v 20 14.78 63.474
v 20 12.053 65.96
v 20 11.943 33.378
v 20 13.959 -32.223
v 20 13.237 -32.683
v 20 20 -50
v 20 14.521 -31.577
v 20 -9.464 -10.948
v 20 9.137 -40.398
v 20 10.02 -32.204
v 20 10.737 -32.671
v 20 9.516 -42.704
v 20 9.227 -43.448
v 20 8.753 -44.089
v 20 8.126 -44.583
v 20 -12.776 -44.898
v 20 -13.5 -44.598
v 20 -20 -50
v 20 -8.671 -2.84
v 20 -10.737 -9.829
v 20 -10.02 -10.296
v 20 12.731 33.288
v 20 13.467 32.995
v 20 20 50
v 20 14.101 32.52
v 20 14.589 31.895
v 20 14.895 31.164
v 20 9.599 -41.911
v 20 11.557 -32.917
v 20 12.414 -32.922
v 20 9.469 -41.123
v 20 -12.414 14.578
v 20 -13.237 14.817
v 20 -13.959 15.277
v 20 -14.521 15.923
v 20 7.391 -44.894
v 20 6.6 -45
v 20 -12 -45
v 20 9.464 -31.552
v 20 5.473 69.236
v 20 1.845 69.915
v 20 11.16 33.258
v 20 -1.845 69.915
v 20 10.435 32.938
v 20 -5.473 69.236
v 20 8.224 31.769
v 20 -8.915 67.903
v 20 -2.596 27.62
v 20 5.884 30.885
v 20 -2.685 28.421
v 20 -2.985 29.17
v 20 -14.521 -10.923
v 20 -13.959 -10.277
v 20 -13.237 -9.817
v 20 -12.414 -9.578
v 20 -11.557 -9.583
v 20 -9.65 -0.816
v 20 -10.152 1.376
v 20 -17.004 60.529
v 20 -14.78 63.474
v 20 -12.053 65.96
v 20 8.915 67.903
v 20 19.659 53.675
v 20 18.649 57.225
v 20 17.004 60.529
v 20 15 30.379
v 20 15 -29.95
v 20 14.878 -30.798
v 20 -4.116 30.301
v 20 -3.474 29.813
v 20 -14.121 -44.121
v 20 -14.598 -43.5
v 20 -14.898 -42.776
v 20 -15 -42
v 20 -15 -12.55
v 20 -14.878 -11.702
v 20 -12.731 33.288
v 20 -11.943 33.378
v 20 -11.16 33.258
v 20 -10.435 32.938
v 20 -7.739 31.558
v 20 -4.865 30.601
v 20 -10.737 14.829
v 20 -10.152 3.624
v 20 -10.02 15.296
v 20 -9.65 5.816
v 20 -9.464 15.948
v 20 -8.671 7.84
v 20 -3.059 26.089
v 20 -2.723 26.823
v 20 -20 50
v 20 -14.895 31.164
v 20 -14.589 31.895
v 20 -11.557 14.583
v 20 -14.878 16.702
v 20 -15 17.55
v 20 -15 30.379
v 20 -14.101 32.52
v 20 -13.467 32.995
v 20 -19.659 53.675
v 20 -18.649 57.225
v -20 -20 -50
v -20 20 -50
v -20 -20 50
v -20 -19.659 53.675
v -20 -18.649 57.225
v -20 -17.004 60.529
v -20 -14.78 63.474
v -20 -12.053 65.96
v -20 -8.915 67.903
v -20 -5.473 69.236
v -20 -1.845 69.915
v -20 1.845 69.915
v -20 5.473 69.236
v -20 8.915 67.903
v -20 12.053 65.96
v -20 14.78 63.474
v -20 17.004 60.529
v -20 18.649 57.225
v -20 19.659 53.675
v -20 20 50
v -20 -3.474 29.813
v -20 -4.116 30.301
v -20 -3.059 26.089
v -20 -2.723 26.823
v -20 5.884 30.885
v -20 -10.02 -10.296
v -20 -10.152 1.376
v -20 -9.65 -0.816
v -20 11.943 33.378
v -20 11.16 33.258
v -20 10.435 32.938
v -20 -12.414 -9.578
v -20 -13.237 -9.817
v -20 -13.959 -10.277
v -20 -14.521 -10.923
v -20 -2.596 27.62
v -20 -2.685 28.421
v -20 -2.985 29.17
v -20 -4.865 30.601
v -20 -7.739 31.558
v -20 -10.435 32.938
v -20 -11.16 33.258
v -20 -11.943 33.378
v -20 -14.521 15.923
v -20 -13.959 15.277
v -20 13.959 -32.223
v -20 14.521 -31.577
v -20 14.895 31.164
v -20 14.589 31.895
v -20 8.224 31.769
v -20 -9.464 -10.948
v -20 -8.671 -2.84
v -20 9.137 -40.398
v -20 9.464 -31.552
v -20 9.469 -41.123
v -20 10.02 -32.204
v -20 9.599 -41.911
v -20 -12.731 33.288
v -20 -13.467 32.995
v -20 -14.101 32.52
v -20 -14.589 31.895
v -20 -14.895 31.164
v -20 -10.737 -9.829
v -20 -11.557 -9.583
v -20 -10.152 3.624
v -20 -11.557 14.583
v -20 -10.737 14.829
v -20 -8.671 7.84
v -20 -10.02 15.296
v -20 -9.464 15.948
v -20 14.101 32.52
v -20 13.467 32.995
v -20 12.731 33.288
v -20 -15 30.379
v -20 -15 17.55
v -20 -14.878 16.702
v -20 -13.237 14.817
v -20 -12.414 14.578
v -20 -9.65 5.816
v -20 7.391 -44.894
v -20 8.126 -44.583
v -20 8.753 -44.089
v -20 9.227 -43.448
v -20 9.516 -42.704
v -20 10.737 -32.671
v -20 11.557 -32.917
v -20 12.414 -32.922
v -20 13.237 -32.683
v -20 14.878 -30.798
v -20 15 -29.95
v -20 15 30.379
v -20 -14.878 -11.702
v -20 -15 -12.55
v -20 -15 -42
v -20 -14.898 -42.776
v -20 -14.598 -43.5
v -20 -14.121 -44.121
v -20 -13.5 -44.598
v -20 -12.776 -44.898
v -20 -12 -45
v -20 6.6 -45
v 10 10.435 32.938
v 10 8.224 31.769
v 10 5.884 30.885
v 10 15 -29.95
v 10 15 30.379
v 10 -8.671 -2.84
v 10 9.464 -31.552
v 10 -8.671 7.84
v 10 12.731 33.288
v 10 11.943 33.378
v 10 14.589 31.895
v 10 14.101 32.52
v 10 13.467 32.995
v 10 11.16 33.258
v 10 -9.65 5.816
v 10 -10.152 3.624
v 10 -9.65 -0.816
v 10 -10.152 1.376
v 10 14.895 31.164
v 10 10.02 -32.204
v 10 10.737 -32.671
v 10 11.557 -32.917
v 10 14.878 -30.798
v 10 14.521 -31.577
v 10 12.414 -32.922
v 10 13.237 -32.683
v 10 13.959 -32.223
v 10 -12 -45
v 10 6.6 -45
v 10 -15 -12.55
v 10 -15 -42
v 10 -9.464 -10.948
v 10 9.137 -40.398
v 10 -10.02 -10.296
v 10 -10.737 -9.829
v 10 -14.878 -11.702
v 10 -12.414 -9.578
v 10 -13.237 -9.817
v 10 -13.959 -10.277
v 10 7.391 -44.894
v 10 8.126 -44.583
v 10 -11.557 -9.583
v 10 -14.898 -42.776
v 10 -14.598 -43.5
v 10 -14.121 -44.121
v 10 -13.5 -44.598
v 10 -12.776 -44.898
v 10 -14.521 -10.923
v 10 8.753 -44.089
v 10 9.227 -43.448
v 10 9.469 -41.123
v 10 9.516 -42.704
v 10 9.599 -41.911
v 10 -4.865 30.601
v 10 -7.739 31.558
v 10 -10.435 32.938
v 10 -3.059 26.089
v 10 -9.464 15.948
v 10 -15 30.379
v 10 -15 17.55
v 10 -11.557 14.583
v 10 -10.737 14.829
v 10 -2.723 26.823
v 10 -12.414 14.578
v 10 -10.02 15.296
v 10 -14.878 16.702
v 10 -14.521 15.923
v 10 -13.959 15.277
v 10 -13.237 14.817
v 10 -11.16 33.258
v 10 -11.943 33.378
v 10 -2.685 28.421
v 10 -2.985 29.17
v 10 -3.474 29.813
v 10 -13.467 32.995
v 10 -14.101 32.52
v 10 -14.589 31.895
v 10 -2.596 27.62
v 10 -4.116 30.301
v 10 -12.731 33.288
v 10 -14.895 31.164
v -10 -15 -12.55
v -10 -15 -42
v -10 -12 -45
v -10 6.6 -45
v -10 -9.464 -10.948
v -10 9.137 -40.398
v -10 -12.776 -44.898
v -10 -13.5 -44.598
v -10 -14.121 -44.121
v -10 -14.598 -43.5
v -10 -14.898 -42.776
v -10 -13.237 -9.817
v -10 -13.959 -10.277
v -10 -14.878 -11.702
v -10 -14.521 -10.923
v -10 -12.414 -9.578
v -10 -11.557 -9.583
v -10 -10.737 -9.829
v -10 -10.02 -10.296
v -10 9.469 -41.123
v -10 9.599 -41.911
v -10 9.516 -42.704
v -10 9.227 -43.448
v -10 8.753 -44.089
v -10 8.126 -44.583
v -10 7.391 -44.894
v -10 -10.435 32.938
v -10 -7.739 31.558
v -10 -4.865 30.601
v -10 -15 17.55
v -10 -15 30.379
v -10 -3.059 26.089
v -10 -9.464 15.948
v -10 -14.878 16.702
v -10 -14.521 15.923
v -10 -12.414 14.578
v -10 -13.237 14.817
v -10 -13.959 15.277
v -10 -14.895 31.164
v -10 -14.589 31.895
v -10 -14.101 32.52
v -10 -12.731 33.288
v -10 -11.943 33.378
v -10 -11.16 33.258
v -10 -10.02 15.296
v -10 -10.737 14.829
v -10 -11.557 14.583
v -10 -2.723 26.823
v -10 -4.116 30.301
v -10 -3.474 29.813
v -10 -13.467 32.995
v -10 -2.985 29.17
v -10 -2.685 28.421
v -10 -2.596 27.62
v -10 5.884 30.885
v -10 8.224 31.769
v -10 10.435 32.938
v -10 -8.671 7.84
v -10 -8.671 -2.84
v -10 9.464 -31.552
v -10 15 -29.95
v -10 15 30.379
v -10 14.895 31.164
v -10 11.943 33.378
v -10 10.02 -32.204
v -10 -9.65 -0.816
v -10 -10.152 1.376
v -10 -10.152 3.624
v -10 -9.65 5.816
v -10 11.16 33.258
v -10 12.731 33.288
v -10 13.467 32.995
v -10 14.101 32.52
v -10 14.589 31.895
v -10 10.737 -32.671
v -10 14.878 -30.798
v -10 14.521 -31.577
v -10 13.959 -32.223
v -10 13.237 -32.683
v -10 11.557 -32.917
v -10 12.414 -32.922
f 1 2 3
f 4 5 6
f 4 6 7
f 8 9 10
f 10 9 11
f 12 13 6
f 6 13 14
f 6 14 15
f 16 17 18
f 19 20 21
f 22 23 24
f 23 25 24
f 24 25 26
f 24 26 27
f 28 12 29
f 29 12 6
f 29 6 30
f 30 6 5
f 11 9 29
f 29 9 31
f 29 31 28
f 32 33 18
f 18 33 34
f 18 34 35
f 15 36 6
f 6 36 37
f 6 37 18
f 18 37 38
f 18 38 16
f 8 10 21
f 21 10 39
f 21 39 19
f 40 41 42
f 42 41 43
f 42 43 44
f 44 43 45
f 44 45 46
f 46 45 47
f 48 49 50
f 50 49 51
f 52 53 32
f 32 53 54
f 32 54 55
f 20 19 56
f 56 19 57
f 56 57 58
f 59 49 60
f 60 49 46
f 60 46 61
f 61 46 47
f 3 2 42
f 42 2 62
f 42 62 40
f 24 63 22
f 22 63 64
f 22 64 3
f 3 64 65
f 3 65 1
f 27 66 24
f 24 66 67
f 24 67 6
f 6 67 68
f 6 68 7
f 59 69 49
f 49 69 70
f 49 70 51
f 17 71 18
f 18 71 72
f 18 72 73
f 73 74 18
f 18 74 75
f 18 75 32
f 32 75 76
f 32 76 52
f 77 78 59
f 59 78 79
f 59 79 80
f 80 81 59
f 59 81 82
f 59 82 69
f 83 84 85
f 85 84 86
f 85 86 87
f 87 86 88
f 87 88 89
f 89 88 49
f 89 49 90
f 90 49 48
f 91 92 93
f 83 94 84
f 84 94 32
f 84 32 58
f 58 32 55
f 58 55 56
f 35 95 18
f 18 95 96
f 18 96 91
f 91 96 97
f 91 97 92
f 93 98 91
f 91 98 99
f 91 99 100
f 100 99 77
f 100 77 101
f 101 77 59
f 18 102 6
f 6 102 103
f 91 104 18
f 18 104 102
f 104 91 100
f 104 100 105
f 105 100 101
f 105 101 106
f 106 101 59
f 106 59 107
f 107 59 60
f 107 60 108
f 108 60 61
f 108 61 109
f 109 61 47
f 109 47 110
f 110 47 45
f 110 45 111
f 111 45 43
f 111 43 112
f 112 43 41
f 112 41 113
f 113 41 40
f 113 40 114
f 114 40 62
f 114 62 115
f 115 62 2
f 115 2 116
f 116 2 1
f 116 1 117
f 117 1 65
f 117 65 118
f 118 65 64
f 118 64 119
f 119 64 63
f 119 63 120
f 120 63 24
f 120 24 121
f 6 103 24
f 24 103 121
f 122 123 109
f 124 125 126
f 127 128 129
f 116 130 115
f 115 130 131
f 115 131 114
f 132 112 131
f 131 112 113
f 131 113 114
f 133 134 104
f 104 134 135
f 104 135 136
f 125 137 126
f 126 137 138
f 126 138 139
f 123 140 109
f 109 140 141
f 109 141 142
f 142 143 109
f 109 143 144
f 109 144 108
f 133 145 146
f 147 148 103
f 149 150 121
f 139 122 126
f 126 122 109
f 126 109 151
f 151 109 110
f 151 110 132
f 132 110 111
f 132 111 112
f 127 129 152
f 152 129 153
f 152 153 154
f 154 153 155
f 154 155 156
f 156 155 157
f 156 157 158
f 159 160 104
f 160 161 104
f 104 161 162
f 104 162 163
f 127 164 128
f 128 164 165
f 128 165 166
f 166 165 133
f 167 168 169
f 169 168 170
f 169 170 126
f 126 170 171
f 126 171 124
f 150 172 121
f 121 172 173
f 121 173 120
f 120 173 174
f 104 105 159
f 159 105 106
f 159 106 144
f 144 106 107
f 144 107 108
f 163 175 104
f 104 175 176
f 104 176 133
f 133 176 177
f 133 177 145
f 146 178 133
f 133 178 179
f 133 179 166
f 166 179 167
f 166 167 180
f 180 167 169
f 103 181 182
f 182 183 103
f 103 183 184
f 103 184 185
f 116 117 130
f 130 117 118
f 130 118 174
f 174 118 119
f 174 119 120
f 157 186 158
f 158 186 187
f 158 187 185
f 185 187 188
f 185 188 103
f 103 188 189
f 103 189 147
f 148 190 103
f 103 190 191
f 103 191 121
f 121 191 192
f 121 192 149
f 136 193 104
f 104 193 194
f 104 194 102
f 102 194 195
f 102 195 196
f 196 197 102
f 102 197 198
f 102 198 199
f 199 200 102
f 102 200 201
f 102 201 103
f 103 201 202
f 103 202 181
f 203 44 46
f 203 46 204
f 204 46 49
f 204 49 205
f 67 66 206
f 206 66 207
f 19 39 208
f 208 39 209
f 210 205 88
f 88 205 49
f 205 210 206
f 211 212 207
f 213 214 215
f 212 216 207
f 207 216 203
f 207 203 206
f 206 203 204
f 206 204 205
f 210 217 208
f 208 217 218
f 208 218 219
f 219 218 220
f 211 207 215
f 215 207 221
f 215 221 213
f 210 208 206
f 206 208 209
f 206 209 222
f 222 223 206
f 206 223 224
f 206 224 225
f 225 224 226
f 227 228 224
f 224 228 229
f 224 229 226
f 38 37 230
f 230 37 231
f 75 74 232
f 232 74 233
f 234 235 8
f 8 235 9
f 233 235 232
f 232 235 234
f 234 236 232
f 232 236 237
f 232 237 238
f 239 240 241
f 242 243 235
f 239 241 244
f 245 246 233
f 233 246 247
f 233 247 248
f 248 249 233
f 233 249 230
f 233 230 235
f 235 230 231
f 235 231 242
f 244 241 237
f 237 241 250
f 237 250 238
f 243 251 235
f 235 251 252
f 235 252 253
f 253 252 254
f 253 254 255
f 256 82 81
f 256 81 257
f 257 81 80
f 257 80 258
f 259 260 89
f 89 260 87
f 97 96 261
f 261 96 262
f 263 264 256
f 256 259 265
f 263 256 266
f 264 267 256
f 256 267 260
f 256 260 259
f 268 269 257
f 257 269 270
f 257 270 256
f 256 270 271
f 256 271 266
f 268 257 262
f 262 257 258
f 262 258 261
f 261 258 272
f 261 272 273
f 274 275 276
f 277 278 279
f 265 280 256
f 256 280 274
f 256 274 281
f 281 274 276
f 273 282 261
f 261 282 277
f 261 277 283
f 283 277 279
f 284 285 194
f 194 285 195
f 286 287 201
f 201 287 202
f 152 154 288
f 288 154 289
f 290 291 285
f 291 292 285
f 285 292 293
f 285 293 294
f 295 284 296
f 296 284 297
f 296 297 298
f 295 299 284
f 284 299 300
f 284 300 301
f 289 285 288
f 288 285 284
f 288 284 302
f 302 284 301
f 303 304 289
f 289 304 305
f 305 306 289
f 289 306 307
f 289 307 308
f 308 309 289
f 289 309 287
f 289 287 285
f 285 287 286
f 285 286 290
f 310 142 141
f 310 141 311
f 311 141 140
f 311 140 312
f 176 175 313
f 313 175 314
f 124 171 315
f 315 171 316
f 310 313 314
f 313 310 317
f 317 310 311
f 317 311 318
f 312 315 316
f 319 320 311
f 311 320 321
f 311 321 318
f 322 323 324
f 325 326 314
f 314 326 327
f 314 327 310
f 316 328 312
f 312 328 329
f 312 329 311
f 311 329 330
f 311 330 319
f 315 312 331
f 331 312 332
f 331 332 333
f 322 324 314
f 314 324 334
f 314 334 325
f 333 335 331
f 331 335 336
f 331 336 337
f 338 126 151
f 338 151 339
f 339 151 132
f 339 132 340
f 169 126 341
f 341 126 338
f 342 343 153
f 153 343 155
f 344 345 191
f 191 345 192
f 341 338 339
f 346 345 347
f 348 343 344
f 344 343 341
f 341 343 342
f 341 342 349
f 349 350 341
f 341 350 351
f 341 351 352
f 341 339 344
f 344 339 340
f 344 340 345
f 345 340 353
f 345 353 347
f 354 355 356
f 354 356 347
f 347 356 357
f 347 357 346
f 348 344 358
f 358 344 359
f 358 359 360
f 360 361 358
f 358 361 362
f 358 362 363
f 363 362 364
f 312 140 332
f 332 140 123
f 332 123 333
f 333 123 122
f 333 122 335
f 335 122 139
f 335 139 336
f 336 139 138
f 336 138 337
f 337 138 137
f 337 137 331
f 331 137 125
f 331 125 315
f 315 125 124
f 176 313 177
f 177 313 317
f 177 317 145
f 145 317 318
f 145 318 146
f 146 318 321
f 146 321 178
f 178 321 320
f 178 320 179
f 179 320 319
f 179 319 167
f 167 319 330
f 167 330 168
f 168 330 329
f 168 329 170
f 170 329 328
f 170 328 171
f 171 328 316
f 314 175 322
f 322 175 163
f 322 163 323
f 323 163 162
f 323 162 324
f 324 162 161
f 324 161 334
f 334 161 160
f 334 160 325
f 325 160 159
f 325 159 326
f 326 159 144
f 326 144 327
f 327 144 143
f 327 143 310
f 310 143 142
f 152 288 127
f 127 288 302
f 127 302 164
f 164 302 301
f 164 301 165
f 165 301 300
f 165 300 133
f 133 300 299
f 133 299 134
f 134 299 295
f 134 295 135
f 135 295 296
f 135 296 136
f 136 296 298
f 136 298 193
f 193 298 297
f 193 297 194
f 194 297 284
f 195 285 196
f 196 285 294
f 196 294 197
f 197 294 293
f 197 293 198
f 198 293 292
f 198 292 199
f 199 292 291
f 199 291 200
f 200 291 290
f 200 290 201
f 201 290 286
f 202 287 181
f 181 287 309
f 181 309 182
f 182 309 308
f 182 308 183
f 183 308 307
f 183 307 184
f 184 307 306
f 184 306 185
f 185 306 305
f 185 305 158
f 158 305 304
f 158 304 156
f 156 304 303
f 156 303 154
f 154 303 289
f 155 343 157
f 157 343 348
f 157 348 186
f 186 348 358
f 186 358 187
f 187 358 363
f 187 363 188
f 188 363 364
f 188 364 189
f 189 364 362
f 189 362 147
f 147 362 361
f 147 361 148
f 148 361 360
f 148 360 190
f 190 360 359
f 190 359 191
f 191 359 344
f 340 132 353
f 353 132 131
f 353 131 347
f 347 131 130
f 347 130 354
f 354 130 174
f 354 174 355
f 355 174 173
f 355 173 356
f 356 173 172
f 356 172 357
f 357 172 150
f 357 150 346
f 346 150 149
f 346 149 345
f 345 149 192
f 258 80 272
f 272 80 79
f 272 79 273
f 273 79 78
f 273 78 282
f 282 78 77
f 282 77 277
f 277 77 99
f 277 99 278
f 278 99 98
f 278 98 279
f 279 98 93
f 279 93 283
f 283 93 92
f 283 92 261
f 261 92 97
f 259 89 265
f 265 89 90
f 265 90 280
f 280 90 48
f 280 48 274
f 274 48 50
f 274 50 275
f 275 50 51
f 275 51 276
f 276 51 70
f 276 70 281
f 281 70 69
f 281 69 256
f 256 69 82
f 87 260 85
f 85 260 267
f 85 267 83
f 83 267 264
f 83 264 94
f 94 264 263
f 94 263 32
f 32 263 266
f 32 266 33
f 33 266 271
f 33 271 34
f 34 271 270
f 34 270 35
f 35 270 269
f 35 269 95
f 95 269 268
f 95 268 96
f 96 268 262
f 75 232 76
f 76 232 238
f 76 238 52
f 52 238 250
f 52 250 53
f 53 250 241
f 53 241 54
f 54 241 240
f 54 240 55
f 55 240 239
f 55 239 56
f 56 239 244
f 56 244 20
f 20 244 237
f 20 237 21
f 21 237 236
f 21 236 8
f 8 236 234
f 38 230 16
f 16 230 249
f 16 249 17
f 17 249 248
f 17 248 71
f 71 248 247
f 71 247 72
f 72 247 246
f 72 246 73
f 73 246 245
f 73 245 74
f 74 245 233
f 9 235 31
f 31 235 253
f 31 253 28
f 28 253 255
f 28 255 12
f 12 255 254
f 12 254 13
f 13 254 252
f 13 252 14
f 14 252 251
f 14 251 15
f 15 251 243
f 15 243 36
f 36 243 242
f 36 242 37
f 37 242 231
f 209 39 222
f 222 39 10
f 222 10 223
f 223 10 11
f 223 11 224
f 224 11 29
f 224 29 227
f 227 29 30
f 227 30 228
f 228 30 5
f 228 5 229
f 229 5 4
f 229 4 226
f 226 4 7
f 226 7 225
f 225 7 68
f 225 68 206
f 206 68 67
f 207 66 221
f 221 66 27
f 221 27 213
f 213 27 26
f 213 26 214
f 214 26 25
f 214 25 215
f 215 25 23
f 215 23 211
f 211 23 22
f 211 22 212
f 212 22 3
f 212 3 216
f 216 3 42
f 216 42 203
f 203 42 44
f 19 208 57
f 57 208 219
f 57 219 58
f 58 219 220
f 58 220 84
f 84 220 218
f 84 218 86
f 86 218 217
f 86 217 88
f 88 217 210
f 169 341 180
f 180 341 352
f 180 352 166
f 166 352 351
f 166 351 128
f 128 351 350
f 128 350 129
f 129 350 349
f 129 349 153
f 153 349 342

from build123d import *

# Parameters (mm, degrees)
BOSS_EXTRUDE1_DEPTH      = 20
BOSS_EXTRUDE1_DEPTH_BACK = 20
CUT_EXTRUDE1_START       = -10
CUT_EXTRUDE1_DEPTH       = 10
CUT_EXTRUDE3_DEPTH       = 10
FILLET1_R                = 3
FILLET2_R                = 10


with BuildPart() as part:
    # Sketch1 → Boss-Extrude1 (new, two sides: drawn at the far end of the back side and taken through both)
    with BuildSketch(Plane(origin=(0, 0, 0), x_dir=(0, 0, -1), z_dir=(1, 0, 0)).offset(-BOSS_EXTRUDE1_DEPTH_BACK)):
        with BuildLine():
            Line((-50, -20), (50, -20))
            Line((50, -20), (50, 20))
            Line((50, 20), (-50, 20))
            ThreePointArc((-50, 20), (-70, 0), (-50, -20))
        make_face()
    extrude(amount=BOSS_EXTRUDE1_DEPTH + BOSS_EXTRUDE1_DEPTH_BACK)

    # Sketch2 → Cut-Extrude1 (cut)
    with BuildSketch(Plane(origin=(20, 0, 0), x_dir=(0, 0, -1), z_dir=(1, 0, 0)).offset(CUT_EXTRUDE1_START)):
        with BuildLine():
            Line((-2.5, -12.043130914), (40.318290614, 15))
            Line((40.318290614, 15), (-36.771243445, 15))
            ThreePointArc((-36.771243445, 15), (-33.198235095, 10.848995164), (-30.885242753, 5.884390825))
            Line((-30.885242753, 5.884390825), (-2.5, -12.043130914))
        make_face()
        Polygon((45, -15), (45, 12.043130914), (2.181709386, -15), align=None)
        with BuildLine():
            Line((-36.771243445, -15), (-7.181709386, -15))
            Line((-7.181709386, -15), (-30.008501328, -0.583078774))
            ThreePointArc((-30.008501328, -0.583078774), (-31.893143736, -8.493630334), (-36.771243445, -15))
        make_face()
    extrude(amount=CUT_EXTRUDE1_DEPTH, mode=Mode.SUBTRACT)

    # Sketch4 → Cut-Extrude3 (cut)
    with BuildSketch(Plane.ZY.offset(20)):
        with BuildLine():
            Line((2.5, -12.043130914), (30.885242753, 5.884390825))
            ThreePointArc((30.885242753, 5.884390825), (33.198235095, 10.848995164), (36.771243445, 15))
            Line((36.771243445, 15), (-40.318290614, 15))
            Line((-40.318290614, 15), (2.5, -12.043130914))
        make_face()
        with BuildLine():
            Line((7.181709386, -15), (36.771243445, -15))
            ThreePointArc((36.771243445, -15), (31.893143736, -8.493630334), (30.008501328, -0.583078774))
            Line((30.008501328, -0.583078774), (7.181709386, -15))
        make_face()
        Polygon((-45, 12.043130914), (-45, -15), (-2.181709386, -15), align=None)
    extrude(amount=-CUT_EXTRUDE3_DEPTH, mode=Mode.SUBTRACT)

    # Fillet1
    fillet1_edges = [part.edges().sort_by_distance(p)[0] for p in [
        (15, -15, 36.771243445),
        (15, -0.583078774, 30.008501328),
        (15, -15, 7.181709386),
        (15, 12.043130914, -45),
        (15, -15, -45),
        (15, -15, -2.181709386),
        (15, 15, 36.771243445),
        (15, 15, -40.318290614),
        (-15, 15, 36.771243445),
        (-15, 15, -40.318290614),
        (-15, -0.583078774, 30.008501328),
        (-15, -15, 36.771243445),
        (-15, -15, 7.181709386),
        (-15, -15, -2.181709386),
        (-15, -15, -45),
        (-15, 12.043130914, -45),
    ]]
    fillet(fillet1_edges, radius=FILLET1_R)

    # Fillet2
    fillet2_edges = [part.edges().sort_by_distance(p)[0] for p in [
        (15, -12.043130914, 2.5),
        (-15, -12.043130914, 2.5),
    ]]
    fillet(fillet2_edges, radius=FILLET2_R)


solid = part.part
